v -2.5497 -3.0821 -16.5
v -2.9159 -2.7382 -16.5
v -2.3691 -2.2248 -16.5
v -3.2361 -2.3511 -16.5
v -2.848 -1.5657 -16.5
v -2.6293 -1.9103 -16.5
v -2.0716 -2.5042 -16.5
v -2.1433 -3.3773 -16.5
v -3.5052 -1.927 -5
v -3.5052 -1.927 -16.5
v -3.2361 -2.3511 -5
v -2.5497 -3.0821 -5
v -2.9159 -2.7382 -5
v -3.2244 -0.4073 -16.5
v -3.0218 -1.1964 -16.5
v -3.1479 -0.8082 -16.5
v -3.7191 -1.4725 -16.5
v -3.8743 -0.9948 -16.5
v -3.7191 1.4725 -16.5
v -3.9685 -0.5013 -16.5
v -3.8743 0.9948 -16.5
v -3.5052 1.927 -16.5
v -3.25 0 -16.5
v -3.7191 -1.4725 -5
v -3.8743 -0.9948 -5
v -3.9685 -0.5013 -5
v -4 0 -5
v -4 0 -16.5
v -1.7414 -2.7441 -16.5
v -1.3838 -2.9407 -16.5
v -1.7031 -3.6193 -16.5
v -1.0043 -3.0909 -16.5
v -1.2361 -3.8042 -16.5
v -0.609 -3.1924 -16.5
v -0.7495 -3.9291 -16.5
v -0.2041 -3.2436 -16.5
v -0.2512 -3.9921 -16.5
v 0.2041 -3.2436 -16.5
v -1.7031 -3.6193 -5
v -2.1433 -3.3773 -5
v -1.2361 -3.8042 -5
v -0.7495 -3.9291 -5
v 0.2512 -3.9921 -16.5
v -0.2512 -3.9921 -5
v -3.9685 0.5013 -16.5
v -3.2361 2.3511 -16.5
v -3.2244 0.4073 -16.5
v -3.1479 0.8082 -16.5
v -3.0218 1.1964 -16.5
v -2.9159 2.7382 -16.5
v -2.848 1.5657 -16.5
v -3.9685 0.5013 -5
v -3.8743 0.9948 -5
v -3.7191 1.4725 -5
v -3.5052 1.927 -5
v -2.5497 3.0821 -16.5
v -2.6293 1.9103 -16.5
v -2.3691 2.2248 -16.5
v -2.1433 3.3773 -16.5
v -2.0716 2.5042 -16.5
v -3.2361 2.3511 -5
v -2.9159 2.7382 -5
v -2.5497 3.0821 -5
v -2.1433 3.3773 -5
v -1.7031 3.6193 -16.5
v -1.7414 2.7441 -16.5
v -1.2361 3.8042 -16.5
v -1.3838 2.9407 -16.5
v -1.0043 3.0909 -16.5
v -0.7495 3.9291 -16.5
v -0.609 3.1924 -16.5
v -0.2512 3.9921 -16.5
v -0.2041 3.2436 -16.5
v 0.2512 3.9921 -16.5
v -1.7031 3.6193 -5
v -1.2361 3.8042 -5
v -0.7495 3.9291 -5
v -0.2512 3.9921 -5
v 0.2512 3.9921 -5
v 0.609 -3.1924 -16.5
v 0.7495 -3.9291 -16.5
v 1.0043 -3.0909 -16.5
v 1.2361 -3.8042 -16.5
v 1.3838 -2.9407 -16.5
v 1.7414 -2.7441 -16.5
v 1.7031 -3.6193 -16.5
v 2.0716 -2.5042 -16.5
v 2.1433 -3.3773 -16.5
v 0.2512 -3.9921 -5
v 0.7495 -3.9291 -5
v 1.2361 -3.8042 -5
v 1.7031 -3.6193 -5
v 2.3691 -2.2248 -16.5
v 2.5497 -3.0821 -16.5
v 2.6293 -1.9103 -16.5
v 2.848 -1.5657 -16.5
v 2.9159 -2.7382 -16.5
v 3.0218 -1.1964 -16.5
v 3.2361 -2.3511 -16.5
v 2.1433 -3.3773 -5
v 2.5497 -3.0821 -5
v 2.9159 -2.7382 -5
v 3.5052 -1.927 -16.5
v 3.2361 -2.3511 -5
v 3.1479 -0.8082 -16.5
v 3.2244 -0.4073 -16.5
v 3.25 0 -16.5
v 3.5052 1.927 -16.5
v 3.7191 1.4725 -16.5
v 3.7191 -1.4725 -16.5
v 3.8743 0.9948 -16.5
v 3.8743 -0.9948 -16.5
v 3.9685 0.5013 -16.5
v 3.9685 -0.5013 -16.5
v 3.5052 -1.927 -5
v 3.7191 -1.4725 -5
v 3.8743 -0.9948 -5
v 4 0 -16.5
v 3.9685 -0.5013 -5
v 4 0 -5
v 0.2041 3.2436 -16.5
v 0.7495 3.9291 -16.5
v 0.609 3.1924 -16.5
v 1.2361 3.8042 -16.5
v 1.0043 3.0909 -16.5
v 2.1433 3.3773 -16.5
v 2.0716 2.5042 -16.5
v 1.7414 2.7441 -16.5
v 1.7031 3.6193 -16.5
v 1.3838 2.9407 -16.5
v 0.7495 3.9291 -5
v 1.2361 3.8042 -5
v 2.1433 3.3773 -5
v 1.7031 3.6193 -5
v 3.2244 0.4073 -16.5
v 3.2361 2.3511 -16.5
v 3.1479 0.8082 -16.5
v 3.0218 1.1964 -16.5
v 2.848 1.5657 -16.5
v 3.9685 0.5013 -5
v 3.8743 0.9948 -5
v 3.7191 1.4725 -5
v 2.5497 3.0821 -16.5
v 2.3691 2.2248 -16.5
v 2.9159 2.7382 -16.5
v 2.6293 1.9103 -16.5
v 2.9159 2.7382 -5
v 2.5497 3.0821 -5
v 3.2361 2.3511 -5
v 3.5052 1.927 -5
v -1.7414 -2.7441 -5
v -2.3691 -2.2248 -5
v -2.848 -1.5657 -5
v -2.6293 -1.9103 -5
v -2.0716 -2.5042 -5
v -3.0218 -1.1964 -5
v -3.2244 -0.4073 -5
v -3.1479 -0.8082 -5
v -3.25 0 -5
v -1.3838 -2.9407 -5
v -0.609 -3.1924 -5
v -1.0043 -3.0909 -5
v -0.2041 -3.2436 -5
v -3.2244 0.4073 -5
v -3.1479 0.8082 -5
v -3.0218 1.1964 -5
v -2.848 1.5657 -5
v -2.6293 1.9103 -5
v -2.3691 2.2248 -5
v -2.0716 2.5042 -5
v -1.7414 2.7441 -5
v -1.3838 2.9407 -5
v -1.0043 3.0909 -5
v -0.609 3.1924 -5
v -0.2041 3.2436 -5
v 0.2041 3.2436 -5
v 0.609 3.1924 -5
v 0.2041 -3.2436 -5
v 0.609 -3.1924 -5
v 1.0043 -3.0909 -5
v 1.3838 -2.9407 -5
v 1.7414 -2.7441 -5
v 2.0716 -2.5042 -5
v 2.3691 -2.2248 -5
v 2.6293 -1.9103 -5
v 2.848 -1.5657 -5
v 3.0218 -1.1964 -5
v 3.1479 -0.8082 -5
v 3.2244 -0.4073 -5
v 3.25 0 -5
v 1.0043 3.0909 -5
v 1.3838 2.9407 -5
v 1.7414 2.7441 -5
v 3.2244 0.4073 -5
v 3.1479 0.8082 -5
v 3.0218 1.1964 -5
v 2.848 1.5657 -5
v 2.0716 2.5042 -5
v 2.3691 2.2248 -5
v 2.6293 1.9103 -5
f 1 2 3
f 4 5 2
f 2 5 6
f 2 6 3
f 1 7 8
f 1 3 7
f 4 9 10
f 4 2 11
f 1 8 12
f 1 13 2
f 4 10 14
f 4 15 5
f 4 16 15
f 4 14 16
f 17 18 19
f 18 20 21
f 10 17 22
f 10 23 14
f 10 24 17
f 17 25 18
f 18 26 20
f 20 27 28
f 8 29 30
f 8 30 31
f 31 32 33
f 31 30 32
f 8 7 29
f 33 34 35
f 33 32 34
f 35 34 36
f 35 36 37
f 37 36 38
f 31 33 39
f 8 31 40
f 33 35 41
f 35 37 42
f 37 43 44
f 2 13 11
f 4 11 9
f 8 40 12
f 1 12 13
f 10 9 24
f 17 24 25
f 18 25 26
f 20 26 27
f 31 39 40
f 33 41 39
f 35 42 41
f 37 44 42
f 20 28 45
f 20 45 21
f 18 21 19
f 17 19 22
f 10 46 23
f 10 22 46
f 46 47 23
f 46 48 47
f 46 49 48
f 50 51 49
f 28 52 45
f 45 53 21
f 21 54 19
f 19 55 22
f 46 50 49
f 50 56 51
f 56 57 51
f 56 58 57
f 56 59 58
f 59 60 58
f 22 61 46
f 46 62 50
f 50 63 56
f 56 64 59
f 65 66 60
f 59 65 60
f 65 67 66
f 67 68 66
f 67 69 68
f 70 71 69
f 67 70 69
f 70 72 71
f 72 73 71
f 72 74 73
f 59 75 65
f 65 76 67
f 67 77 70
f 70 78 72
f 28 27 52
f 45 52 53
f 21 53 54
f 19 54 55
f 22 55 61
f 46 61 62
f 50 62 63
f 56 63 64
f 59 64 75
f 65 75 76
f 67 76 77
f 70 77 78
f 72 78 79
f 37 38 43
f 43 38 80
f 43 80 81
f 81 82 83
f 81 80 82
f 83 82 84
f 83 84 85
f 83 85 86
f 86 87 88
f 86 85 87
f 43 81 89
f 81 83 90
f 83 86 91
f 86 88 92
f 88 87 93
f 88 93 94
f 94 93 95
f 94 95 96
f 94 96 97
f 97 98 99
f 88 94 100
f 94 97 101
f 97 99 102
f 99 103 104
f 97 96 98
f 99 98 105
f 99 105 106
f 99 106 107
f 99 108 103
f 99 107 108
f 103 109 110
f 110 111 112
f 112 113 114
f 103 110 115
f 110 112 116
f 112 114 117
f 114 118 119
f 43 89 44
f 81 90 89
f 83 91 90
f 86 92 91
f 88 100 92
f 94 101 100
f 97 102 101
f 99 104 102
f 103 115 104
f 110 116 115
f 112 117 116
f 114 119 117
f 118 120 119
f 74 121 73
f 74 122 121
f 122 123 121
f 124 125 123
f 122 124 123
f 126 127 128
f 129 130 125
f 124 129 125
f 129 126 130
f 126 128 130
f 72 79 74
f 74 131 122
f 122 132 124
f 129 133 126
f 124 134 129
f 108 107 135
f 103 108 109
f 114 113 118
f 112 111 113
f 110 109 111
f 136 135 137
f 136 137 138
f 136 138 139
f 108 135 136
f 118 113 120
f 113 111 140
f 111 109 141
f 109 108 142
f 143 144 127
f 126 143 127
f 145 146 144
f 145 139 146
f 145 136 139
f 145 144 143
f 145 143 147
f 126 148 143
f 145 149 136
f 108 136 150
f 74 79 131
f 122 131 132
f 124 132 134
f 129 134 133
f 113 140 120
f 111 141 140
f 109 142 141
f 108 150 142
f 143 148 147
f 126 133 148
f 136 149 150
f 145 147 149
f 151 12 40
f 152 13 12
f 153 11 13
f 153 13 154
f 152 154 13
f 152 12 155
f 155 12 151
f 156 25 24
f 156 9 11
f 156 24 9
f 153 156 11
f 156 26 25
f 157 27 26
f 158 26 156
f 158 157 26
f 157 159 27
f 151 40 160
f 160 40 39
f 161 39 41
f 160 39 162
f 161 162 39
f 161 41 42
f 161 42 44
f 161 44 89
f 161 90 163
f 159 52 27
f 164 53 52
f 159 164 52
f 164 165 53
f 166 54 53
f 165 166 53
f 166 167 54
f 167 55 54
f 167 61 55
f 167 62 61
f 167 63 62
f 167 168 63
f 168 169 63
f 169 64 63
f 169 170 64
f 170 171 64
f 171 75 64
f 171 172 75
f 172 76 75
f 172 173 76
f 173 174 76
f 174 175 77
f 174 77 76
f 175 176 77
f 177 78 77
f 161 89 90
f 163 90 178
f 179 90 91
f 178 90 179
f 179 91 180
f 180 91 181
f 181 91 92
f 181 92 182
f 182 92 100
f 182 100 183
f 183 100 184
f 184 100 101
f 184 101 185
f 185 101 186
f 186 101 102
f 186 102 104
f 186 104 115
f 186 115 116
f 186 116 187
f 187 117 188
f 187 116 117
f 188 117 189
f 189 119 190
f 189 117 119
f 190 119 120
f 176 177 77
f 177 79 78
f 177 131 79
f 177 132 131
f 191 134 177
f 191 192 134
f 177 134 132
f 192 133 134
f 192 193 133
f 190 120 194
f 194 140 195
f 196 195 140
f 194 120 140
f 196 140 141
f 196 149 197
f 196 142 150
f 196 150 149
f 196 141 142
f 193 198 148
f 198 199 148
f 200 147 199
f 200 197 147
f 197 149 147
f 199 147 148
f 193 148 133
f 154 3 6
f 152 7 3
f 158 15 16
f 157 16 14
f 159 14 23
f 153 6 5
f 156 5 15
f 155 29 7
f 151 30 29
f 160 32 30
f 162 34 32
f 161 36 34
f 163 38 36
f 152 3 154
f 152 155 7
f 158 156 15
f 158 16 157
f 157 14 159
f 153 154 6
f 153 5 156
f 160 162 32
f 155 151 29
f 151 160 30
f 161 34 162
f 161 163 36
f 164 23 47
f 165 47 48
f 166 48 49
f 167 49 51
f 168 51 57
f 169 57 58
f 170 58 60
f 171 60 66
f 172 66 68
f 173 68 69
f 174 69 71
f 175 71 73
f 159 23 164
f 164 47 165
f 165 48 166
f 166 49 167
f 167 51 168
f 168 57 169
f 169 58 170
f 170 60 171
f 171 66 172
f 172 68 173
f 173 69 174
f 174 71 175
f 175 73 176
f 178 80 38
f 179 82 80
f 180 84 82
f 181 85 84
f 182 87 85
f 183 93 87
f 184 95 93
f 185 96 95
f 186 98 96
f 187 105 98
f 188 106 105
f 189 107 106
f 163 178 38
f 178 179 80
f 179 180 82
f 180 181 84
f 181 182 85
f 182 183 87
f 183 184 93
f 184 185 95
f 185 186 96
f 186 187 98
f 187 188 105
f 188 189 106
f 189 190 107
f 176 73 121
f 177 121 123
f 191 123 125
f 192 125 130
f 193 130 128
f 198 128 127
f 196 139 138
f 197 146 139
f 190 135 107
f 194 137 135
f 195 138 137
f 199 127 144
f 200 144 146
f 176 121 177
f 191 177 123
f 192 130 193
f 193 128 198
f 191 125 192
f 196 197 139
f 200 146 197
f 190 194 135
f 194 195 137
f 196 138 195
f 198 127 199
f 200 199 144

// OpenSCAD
$fn = 50;

difference() {
	union() {
		translate(v = [0, 0, -16.5]) {
			cylinder(h = 19.5, r = 4.0);
		}
		#translate(v = [0, 0, -18.0]) {
			cylinder(h = 18, r = 2.875);
		}
	}
	union() {
		translate(v = [0, 0, 0]) {
			rotate(a = [0, 0, 0]) {
				difference() {
					union() {
						translate(v = [0, 0, -5]) {
							linear_extrude(height = 5) {
								polygon(points = [[5.914249999999999, 0.0], [2.957125, 5.1218907443321156], [-2.9571249999999982, 5.1218907443321156], [-5.914249999999999, 7.242867331857232e-16], [-2.9571250000000022, -5.121890744332115], [2.9571249999999956, -5.121890744332118]]);
							}
						}
					}
					union();
				}
			}
		}
		#cylinder(h = 3, r = 6.25);
		#translate(v = [0, 0, -100.0]) {
			cylinder(h = 200, r = 3.25);
		}
	}
}
